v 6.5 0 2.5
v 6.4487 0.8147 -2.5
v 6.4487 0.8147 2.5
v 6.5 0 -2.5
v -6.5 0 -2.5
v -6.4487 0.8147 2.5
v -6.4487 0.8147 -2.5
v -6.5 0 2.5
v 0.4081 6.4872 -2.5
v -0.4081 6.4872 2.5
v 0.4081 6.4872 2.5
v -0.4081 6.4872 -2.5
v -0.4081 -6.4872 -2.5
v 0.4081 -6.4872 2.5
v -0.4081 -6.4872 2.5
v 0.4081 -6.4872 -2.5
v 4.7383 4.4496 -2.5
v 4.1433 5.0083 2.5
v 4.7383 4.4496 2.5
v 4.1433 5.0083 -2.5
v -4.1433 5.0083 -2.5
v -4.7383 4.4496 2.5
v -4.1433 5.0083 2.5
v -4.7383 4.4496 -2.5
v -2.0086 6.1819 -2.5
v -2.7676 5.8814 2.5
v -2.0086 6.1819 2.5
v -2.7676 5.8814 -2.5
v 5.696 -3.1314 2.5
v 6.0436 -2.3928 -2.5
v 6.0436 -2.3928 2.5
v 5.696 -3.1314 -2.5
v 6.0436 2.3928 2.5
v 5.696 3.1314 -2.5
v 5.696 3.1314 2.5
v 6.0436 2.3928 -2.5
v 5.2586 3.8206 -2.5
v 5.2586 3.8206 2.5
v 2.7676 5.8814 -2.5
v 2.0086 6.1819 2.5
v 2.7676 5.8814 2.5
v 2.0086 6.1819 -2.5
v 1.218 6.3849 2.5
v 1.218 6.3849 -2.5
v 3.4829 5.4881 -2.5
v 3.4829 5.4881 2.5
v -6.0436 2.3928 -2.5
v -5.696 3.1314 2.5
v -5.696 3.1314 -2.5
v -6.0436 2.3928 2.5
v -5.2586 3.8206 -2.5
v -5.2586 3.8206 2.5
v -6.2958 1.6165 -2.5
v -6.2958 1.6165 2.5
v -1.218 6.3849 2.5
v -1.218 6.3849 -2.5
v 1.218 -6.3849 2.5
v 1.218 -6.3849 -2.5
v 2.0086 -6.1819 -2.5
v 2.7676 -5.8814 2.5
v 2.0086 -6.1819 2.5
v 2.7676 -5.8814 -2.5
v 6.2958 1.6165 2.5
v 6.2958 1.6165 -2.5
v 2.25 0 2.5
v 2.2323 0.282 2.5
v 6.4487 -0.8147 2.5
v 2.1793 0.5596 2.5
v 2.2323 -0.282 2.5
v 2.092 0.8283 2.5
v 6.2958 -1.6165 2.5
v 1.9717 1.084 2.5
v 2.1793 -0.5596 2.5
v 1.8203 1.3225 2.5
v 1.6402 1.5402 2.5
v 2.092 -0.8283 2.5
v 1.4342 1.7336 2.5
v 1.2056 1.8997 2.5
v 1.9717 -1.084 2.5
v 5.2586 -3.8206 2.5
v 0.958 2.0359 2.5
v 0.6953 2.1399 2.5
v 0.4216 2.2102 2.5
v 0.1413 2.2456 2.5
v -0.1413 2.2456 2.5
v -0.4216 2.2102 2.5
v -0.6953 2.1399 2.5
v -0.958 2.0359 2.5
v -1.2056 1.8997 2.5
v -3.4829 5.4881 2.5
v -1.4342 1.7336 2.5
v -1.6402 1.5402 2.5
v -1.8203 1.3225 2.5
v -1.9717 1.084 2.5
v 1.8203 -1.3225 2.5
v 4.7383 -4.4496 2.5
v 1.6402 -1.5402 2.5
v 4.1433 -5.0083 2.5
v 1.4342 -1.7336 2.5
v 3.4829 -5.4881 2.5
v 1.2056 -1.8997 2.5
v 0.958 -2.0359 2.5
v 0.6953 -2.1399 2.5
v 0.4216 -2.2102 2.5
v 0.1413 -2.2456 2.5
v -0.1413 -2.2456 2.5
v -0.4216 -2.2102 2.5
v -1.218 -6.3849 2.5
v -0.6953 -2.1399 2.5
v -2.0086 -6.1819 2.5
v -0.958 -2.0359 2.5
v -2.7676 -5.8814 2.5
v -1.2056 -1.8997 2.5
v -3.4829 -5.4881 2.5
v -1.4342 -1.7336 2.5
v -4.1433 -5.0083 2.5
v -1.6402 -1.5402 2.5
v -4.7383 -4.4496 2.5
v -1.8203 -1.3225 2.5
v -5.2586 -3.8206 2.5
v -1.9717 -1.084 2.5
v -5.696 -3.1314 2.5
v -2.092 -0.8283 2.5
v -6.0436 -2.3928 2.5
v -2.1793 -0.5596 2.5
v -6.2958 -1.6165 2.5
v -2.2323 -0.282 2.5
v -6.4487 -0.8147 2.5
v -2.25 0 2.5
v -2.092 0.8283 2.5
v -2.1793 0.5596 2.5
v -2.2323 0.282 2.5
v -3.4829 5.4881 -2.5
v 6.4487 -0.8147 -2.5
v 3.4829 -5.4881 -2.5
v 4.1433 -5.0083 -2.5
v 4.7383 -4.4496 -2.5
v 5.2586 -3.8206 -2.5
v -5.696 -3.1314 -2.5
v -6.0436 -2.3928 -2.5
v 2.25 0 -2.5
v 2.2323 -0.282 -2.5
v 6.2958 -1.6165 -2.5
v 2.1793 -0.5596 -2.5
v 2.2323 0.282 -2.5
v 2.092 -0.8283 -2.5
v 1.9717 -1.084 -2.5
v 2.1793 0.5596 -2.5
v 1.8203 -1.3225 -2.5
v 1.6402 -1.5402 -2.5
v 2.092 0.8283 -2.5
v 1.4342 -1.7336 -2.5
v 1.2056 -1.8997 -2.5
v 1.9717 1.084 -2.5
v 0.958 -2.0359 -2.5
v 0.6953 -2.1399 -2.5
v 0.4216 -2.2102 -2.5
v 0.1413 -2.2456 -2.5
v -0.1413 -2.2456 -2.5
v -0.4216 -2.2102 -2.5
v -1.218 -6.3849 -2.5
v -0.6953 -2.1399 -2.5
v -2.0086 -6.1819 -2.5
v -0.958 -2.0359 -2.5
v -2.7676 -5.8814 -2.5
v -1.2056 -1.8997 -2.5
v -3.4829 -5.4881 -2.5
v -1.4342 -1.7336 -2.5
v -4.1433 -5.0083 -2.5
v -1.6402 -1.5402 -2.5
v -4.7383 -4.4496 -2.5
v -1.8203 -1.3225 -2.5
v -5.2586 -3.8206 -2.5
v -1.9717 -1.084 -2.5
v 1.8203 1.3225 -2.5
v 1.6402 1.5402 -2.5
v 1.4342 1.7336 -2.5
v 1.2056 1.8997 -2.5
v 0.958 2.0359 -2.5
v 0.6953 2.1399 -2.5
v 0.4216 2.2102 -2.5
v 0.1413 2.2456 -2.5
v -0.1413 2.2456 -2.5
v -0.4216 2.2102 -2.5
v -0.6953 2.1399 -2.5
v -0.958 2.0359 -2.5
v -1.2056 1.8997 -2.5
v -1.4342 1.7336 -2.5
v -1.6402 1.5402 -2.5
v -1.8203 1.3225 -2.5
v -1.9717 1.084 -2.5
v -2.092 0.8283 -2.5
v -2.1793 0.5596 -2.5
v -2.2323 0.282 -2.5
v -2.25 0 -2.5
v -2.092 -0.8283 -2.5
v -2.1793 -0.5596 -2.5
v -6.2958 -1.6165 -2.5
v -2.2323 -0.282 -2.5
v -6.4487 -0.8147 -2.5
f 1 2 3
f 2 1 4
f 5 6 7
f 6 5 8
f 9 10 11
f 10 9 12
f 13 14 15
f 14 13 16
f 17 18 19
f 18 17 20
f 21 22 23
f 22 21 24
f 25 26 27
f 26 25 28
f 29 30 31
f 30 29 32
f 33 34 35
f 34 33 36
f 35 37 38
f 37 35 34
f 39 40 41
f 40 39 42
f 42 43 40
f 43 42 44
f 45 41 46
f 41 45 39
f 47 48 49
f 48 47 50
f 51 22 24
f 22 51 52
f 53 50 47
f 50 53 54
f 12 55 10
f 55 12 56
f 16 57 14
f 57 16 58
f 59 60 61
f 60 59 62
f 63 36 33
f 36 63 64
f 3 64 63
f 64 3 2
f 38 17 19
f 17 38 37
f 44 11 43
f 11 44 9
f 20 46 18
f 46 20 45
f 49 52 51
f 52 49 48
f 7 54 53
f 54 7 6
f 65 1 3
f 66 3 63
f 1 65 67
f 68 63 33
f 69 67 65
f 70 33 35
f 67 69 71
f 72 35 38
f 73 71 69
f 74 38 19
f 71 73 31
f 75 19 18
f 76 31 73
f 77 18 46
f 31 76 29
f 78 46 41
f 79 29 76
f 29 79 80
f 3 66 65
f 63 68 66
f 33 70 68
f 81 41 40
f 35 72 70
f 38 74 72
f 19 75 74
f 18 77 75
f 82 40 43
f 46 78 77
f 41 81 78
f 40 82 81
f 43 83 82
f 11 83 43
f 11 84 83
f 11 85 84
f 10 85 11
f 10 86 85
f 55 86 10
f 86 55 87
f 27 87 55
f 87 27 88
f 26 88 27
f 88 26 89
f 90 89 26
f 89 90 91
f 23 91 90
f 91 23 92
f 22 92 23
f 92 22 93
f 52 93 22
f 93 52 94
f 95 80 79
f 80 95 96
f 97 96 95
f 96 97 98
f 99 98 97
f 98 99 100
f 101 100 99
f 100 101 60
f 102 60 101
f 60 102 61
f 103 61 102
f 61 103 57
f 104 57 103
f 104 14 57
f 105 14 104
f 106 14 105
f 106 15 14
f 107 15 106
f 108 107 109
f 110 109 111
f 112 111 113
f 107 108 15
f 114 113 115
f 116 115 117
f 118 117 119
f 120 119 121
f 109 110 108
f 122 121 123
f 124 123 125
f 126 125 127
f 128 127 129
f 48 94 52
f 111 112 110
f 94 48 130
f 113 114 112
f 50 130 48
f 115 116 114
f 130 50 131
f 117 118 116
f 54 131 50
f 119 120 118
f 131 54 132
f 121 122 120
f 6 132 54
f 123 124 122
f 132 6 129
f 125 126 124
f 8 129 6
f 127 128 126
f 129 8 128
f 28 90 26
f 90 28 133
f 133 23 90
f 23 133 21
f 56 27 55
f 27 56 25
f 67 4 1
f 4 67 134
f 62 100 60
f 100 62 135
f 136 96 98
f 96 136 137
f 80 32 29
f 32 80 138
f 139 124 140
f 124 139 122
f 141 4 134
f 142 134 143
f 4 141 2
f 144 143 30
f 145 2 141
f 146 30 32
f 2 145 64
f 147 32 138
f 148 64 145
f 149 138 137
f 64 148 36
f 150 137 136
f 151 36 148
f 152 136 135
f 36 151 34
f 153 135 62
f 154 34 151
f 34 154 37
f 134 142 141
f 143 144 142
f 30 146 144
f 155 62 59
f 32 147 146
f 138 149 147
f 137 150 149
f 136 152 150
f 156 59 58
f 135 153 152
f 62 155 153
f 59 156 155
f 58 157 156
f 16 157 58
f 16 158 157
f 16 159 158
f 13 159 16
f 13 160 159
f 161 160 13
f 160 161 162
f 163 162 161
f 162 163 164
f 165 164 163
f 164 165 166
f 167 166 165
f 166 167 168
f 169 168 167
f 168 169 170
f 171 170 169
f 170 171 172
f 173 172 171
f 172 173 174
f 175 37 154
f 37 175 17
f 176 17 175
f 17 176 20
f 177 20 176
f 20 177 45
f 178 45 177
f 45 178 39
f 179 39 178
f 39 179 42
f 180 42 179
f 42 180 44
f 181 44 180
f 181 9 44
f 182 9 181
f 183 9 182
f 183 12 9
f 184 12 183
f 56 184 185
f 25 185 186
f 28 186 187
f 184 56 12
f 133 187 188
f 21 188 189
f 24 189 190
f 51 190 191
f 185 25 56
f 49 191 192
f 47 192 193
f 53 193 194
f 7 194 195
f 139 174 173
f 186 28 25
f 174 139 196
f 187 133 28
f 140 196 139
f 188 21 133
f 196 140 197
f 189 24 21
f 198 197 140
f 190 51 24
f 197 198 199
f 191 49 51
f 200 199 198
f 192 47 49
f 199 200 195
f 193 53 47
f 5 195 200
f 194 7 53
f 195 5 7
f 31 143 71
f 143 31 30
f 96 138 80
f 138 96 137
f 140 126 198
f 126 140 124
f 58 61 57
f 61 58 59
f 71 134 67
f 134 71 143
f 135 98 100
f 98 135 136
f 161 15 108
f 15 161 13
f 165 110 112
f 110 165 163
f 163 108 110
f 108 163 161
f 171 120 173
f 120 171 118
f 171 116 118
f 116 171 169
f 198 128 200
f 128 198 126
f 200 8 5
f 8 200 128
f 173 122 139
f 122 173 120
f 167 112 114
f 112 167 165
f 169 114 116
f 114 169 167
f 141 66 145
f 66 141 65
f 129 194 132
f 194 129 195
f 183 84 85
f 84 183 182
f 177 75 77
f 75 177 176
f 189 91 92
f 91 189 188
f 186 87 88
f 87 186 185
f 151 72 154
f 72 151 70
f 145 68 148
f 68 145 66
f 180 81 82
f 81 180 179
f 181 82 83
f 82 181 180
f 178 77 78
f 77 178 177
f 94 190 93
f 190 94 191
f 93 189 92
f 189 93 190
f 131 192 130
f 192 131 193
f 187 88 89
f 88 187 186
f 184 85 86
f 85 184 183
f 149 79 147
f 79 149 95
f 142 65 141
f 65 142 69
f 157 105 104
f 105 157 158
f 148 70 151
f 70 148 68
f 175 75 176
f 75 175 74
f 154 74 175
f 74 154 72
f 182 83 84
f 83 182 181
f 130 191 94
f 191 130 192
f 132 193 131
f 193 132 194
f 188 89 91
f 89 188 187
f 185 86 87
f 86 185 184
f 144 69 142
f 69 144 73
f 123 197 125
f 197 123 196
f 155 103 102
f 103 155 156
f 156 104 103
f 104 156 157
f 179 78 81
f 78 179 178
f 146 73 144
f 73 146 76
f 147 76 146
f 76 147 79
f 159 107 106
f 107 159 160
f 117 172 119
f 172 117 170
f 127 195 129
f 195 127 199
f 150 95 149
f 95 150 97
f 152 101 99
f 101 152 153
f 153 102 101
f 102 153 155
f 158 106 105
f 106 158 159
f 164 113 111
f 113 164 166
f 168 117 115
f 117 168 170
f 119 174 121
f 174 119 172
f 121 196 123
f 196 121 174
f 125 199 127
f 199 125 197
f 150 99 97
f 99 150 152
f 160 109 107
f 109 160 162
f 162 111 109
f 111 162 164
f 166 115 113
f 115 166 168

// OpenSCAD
$fn = 50;


difference() {
	union() {
		translate(v = [0, 0, -2.5000000000]) {
			cylinder(h = 5, r = 6.5000000000);
		}
	}
	union() {
		translate(v = [0, 0, -100.0000000000]) {
			cylinder(h = 200, r = 2.2500000000);
		}
	}
}
